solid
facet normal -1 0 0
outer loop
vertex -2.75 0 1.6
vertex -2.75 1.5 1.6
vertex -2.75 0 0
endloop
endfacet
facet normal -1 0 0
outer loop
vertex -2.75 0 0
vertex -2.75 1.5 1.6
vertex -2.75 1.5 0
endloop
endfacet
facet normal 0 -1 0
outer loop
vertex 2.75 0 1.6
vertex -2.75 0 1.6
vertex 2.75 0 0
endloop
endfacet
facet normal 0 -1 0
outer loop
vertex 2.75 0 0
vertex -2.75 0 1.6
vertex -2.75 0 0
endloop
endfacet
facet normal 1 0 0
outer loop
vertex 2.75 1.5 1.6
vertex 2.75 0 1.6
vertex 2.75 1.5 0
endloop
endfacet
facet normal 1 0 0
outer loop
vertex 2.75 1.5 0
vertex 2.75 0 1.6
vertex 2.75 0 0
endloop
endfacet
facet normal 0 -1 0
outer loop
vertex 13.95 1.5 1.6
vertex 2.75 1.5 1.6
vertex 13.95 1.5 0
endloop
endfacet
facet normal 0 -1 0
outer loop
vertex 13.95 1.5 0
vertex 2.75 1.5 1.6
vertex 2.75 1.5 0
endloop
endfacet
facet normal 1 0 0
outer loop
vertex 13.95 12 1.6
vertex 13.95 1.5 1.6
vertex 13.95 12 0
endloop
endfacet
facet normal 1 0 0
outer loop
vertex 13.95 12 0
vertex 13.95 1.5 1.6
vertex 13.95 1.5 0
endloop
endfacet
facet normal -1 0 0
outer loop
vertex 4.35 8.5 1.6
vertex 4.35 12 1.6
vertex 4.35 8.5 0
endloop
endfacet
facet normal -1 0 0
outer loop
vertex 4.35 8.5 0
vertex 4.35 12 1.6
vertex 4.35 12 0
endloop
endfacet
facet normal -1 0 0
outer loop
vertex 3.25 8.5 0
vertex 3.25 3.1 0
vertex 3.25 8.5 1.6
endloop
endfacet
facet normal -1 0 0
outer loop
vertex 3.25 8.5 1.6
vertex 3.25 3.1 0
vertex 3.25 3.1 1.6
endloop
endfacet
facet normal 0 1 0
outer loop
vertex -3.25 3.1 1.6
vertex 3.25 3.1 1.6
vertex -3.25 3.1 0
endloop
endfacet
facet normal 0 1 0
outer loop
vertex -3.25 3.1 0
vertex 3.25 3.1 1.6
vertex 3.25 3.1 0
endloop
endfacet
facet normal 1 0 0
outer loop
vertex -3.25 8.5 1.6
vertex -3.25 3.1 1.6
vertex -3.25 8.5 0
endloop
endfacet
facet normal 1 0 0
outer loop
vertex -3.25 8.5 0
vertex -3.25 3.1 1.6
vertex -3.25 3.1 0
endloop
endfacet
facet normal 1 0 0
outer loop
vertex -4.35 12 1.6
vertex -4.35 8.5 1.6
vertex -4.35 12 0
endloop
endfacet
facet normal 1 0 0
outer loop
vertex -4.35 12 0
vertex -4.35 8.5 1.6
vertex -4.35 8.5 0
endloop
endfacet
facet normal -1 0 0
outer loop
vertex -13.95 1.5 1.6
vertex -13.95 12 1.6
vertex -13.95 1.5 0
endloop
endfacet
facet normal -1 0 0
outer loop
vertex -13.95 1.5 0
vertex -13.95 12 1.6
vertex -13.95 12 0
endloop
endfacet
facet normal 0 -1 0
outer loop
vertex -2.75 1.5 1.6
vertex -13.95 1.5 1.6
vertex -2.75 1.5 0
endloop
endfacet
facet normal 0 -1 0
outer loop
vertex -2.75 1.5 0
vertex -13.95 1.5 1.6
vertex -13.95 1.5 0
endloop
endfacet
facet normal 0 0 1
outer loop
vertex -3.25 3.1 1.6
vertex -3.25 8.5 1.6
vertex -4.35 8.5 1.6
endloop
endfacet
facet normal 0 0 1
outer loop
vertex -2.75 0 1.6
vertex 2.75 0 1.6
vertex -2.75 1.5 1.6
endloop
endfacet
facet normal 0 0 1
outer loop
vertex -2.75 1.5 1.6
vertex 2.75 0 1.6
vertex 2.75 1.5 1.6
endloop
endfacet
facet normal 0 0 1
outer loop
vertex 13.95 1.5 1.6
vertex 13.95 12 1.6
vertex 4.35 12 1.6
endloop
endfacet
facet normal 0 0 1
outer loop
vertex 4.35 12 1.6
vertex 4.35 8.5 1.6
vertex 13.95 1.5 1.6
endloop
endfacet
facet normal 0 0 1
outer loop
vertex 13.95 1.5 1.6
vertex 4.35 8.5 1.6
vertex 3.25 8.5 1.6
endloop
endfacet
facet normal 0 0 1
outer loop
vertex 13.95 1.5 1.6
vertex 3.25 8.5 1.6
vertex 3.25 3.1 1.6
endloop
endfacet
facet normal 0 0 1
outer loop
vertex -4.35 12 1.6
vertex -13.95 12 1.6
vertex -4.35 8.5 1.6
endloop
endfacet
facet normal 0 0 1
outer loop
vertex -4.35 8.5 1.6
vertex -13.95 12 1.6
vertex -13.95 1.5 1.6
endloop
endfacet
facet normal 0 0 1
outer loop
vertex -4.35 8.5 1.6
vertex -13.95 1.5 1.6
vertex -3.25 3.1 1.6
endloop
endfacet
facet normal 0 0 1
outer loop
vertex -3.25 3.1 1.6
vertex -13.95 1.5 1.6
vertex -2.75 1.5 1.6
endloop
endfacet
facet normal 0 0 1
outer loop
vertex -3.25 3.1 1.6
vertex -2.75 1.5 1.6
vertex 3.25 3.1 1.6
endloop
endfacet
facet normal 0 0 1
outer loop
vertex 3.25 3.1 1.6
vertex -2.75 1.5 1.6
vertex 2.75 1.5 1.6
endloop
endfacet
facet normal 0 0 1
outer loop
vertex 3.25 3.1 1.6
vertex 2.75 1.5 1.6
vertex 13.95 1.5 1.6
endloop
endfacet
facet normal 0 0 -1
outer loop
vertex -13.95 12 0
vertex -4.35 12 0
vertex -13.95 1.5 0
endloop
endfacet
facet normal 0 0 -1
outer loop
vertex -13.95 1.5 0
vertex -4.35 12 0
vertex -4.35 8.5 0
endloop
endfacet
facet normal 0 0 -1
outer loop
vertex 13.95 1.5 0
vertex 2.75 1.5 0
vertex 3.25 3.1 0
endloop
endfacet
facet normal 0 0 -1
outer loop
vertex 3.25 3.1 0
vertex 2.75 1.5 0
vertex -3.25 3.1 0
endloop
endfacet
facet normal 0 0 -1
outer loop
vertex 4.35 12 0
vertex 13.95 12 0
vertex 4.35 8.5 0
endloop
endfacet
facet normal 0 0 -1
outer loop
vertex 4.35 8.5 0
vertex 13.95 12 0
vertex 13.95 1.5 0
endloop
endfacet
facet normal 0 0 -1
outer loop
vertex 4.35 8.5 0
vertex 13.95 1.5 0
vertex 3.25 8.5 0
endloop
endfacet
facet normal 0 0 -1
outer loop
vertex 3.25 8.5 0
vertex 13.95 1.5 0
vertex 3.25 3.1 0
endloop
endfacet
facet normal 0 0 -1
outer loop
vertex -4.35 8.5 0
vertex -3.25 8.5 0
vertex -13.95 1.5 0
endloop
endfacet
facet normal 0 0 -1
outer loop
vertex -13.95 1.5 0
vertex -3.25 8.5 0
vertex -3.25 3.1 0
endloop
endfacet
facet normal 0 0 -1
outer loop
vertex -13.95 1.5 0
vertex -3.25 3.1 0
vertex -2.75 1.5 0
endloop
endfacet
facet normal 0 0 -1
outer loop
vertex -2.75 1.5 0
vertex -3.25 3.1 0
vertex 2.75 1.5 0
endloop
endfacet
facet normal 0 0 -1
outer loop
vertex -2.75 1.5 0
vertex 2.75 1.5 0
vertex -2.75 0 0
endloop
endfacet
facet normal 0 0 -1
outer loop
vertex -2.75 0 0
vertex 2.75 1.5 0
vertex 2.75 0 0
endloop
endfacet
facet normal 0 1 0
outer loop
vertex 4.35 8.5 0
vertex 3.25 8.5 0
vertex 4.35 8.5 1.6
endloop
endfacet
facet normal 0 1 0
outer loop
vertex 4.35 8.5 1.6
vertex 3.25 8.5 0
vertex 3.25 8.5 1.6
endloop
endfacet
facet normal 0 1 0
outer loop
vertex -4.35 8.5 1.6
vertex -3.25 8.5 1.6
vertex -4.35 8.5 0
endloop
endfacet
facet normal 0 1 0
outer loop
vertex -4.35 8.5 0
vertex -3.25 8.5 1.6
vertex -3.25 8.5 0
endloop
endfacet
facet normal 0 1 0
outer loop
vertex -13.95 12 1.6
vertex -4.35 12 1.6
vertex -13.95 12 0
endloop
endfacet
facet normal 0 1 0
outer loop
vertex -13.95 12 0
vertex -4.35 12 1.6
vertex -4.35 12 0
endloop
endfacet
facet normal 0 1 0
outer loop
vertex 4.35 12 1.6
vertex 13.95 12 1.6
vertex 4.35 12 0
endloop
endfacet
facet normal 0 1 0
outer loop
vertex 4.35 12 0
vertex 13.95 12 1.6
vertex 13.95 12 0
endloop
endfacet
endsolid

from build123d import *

# Parameters (mm, degrees)
BOSS_EXTRUDE1_DEPTH = 1.6
SKETCH2_W           = 8.7
SKETCH2_H           = 1
CUT_EXTRUDE1_DEPTH  = 1.6
SKETCH3_W           = 9.6
SKETCH3_H           = 1
BOSS_EXTRUDE2_DEPTH = 1.6


with BuildPart() as part:
    # Sketch1 → Boss-Extrude1 (new body)
    with BuildSketch(Plane.XY):
        Polygon((2.75, 0), (-2.75, 0), (-2.75, 1.5), (-13.95, 1.5), (-13.95, 11), (-4.35, 11), (-4.35, 9.5), (-3.25, 9.5), (-3.25, 3.1), (3.25, 3.1), (3.25, 9.5), (4.35, 9.5), (4.35, 11), (13.95, 11), (13.95, 1.5), (2.75, 1.5), align=None)
    extrude(amount=BOSS_EXTRUDE1_DEPTH)

    # Sketch2 → Cut-Extrude1 (cut)
    with BuildSketch(Plane.XY.offset(1.6)):
        with Locations((0, 9)):
            Rectangle(SKETCH2_W, SKETCH2_H)
    extrude(amount=-CUT_EXTRUDE1_DEPTH, mode=Mode.SUBTRACT)

    # Sketch3 → Boss-Extrude2 (add)
    with BuildSketch(Plane.XY.offset(1.6)):
        with Locations((-9.15, 11.5)):
            Rectangle(SKETCH3_W, SKETCH3_H)
        with Locations((9.15, 11.5)):
            Rectangle(SKETCH3_W, SKETCH3_H)
    extrude(amount=-BOSS_EXTRUDE2_DEPTH)


solid = part.part
